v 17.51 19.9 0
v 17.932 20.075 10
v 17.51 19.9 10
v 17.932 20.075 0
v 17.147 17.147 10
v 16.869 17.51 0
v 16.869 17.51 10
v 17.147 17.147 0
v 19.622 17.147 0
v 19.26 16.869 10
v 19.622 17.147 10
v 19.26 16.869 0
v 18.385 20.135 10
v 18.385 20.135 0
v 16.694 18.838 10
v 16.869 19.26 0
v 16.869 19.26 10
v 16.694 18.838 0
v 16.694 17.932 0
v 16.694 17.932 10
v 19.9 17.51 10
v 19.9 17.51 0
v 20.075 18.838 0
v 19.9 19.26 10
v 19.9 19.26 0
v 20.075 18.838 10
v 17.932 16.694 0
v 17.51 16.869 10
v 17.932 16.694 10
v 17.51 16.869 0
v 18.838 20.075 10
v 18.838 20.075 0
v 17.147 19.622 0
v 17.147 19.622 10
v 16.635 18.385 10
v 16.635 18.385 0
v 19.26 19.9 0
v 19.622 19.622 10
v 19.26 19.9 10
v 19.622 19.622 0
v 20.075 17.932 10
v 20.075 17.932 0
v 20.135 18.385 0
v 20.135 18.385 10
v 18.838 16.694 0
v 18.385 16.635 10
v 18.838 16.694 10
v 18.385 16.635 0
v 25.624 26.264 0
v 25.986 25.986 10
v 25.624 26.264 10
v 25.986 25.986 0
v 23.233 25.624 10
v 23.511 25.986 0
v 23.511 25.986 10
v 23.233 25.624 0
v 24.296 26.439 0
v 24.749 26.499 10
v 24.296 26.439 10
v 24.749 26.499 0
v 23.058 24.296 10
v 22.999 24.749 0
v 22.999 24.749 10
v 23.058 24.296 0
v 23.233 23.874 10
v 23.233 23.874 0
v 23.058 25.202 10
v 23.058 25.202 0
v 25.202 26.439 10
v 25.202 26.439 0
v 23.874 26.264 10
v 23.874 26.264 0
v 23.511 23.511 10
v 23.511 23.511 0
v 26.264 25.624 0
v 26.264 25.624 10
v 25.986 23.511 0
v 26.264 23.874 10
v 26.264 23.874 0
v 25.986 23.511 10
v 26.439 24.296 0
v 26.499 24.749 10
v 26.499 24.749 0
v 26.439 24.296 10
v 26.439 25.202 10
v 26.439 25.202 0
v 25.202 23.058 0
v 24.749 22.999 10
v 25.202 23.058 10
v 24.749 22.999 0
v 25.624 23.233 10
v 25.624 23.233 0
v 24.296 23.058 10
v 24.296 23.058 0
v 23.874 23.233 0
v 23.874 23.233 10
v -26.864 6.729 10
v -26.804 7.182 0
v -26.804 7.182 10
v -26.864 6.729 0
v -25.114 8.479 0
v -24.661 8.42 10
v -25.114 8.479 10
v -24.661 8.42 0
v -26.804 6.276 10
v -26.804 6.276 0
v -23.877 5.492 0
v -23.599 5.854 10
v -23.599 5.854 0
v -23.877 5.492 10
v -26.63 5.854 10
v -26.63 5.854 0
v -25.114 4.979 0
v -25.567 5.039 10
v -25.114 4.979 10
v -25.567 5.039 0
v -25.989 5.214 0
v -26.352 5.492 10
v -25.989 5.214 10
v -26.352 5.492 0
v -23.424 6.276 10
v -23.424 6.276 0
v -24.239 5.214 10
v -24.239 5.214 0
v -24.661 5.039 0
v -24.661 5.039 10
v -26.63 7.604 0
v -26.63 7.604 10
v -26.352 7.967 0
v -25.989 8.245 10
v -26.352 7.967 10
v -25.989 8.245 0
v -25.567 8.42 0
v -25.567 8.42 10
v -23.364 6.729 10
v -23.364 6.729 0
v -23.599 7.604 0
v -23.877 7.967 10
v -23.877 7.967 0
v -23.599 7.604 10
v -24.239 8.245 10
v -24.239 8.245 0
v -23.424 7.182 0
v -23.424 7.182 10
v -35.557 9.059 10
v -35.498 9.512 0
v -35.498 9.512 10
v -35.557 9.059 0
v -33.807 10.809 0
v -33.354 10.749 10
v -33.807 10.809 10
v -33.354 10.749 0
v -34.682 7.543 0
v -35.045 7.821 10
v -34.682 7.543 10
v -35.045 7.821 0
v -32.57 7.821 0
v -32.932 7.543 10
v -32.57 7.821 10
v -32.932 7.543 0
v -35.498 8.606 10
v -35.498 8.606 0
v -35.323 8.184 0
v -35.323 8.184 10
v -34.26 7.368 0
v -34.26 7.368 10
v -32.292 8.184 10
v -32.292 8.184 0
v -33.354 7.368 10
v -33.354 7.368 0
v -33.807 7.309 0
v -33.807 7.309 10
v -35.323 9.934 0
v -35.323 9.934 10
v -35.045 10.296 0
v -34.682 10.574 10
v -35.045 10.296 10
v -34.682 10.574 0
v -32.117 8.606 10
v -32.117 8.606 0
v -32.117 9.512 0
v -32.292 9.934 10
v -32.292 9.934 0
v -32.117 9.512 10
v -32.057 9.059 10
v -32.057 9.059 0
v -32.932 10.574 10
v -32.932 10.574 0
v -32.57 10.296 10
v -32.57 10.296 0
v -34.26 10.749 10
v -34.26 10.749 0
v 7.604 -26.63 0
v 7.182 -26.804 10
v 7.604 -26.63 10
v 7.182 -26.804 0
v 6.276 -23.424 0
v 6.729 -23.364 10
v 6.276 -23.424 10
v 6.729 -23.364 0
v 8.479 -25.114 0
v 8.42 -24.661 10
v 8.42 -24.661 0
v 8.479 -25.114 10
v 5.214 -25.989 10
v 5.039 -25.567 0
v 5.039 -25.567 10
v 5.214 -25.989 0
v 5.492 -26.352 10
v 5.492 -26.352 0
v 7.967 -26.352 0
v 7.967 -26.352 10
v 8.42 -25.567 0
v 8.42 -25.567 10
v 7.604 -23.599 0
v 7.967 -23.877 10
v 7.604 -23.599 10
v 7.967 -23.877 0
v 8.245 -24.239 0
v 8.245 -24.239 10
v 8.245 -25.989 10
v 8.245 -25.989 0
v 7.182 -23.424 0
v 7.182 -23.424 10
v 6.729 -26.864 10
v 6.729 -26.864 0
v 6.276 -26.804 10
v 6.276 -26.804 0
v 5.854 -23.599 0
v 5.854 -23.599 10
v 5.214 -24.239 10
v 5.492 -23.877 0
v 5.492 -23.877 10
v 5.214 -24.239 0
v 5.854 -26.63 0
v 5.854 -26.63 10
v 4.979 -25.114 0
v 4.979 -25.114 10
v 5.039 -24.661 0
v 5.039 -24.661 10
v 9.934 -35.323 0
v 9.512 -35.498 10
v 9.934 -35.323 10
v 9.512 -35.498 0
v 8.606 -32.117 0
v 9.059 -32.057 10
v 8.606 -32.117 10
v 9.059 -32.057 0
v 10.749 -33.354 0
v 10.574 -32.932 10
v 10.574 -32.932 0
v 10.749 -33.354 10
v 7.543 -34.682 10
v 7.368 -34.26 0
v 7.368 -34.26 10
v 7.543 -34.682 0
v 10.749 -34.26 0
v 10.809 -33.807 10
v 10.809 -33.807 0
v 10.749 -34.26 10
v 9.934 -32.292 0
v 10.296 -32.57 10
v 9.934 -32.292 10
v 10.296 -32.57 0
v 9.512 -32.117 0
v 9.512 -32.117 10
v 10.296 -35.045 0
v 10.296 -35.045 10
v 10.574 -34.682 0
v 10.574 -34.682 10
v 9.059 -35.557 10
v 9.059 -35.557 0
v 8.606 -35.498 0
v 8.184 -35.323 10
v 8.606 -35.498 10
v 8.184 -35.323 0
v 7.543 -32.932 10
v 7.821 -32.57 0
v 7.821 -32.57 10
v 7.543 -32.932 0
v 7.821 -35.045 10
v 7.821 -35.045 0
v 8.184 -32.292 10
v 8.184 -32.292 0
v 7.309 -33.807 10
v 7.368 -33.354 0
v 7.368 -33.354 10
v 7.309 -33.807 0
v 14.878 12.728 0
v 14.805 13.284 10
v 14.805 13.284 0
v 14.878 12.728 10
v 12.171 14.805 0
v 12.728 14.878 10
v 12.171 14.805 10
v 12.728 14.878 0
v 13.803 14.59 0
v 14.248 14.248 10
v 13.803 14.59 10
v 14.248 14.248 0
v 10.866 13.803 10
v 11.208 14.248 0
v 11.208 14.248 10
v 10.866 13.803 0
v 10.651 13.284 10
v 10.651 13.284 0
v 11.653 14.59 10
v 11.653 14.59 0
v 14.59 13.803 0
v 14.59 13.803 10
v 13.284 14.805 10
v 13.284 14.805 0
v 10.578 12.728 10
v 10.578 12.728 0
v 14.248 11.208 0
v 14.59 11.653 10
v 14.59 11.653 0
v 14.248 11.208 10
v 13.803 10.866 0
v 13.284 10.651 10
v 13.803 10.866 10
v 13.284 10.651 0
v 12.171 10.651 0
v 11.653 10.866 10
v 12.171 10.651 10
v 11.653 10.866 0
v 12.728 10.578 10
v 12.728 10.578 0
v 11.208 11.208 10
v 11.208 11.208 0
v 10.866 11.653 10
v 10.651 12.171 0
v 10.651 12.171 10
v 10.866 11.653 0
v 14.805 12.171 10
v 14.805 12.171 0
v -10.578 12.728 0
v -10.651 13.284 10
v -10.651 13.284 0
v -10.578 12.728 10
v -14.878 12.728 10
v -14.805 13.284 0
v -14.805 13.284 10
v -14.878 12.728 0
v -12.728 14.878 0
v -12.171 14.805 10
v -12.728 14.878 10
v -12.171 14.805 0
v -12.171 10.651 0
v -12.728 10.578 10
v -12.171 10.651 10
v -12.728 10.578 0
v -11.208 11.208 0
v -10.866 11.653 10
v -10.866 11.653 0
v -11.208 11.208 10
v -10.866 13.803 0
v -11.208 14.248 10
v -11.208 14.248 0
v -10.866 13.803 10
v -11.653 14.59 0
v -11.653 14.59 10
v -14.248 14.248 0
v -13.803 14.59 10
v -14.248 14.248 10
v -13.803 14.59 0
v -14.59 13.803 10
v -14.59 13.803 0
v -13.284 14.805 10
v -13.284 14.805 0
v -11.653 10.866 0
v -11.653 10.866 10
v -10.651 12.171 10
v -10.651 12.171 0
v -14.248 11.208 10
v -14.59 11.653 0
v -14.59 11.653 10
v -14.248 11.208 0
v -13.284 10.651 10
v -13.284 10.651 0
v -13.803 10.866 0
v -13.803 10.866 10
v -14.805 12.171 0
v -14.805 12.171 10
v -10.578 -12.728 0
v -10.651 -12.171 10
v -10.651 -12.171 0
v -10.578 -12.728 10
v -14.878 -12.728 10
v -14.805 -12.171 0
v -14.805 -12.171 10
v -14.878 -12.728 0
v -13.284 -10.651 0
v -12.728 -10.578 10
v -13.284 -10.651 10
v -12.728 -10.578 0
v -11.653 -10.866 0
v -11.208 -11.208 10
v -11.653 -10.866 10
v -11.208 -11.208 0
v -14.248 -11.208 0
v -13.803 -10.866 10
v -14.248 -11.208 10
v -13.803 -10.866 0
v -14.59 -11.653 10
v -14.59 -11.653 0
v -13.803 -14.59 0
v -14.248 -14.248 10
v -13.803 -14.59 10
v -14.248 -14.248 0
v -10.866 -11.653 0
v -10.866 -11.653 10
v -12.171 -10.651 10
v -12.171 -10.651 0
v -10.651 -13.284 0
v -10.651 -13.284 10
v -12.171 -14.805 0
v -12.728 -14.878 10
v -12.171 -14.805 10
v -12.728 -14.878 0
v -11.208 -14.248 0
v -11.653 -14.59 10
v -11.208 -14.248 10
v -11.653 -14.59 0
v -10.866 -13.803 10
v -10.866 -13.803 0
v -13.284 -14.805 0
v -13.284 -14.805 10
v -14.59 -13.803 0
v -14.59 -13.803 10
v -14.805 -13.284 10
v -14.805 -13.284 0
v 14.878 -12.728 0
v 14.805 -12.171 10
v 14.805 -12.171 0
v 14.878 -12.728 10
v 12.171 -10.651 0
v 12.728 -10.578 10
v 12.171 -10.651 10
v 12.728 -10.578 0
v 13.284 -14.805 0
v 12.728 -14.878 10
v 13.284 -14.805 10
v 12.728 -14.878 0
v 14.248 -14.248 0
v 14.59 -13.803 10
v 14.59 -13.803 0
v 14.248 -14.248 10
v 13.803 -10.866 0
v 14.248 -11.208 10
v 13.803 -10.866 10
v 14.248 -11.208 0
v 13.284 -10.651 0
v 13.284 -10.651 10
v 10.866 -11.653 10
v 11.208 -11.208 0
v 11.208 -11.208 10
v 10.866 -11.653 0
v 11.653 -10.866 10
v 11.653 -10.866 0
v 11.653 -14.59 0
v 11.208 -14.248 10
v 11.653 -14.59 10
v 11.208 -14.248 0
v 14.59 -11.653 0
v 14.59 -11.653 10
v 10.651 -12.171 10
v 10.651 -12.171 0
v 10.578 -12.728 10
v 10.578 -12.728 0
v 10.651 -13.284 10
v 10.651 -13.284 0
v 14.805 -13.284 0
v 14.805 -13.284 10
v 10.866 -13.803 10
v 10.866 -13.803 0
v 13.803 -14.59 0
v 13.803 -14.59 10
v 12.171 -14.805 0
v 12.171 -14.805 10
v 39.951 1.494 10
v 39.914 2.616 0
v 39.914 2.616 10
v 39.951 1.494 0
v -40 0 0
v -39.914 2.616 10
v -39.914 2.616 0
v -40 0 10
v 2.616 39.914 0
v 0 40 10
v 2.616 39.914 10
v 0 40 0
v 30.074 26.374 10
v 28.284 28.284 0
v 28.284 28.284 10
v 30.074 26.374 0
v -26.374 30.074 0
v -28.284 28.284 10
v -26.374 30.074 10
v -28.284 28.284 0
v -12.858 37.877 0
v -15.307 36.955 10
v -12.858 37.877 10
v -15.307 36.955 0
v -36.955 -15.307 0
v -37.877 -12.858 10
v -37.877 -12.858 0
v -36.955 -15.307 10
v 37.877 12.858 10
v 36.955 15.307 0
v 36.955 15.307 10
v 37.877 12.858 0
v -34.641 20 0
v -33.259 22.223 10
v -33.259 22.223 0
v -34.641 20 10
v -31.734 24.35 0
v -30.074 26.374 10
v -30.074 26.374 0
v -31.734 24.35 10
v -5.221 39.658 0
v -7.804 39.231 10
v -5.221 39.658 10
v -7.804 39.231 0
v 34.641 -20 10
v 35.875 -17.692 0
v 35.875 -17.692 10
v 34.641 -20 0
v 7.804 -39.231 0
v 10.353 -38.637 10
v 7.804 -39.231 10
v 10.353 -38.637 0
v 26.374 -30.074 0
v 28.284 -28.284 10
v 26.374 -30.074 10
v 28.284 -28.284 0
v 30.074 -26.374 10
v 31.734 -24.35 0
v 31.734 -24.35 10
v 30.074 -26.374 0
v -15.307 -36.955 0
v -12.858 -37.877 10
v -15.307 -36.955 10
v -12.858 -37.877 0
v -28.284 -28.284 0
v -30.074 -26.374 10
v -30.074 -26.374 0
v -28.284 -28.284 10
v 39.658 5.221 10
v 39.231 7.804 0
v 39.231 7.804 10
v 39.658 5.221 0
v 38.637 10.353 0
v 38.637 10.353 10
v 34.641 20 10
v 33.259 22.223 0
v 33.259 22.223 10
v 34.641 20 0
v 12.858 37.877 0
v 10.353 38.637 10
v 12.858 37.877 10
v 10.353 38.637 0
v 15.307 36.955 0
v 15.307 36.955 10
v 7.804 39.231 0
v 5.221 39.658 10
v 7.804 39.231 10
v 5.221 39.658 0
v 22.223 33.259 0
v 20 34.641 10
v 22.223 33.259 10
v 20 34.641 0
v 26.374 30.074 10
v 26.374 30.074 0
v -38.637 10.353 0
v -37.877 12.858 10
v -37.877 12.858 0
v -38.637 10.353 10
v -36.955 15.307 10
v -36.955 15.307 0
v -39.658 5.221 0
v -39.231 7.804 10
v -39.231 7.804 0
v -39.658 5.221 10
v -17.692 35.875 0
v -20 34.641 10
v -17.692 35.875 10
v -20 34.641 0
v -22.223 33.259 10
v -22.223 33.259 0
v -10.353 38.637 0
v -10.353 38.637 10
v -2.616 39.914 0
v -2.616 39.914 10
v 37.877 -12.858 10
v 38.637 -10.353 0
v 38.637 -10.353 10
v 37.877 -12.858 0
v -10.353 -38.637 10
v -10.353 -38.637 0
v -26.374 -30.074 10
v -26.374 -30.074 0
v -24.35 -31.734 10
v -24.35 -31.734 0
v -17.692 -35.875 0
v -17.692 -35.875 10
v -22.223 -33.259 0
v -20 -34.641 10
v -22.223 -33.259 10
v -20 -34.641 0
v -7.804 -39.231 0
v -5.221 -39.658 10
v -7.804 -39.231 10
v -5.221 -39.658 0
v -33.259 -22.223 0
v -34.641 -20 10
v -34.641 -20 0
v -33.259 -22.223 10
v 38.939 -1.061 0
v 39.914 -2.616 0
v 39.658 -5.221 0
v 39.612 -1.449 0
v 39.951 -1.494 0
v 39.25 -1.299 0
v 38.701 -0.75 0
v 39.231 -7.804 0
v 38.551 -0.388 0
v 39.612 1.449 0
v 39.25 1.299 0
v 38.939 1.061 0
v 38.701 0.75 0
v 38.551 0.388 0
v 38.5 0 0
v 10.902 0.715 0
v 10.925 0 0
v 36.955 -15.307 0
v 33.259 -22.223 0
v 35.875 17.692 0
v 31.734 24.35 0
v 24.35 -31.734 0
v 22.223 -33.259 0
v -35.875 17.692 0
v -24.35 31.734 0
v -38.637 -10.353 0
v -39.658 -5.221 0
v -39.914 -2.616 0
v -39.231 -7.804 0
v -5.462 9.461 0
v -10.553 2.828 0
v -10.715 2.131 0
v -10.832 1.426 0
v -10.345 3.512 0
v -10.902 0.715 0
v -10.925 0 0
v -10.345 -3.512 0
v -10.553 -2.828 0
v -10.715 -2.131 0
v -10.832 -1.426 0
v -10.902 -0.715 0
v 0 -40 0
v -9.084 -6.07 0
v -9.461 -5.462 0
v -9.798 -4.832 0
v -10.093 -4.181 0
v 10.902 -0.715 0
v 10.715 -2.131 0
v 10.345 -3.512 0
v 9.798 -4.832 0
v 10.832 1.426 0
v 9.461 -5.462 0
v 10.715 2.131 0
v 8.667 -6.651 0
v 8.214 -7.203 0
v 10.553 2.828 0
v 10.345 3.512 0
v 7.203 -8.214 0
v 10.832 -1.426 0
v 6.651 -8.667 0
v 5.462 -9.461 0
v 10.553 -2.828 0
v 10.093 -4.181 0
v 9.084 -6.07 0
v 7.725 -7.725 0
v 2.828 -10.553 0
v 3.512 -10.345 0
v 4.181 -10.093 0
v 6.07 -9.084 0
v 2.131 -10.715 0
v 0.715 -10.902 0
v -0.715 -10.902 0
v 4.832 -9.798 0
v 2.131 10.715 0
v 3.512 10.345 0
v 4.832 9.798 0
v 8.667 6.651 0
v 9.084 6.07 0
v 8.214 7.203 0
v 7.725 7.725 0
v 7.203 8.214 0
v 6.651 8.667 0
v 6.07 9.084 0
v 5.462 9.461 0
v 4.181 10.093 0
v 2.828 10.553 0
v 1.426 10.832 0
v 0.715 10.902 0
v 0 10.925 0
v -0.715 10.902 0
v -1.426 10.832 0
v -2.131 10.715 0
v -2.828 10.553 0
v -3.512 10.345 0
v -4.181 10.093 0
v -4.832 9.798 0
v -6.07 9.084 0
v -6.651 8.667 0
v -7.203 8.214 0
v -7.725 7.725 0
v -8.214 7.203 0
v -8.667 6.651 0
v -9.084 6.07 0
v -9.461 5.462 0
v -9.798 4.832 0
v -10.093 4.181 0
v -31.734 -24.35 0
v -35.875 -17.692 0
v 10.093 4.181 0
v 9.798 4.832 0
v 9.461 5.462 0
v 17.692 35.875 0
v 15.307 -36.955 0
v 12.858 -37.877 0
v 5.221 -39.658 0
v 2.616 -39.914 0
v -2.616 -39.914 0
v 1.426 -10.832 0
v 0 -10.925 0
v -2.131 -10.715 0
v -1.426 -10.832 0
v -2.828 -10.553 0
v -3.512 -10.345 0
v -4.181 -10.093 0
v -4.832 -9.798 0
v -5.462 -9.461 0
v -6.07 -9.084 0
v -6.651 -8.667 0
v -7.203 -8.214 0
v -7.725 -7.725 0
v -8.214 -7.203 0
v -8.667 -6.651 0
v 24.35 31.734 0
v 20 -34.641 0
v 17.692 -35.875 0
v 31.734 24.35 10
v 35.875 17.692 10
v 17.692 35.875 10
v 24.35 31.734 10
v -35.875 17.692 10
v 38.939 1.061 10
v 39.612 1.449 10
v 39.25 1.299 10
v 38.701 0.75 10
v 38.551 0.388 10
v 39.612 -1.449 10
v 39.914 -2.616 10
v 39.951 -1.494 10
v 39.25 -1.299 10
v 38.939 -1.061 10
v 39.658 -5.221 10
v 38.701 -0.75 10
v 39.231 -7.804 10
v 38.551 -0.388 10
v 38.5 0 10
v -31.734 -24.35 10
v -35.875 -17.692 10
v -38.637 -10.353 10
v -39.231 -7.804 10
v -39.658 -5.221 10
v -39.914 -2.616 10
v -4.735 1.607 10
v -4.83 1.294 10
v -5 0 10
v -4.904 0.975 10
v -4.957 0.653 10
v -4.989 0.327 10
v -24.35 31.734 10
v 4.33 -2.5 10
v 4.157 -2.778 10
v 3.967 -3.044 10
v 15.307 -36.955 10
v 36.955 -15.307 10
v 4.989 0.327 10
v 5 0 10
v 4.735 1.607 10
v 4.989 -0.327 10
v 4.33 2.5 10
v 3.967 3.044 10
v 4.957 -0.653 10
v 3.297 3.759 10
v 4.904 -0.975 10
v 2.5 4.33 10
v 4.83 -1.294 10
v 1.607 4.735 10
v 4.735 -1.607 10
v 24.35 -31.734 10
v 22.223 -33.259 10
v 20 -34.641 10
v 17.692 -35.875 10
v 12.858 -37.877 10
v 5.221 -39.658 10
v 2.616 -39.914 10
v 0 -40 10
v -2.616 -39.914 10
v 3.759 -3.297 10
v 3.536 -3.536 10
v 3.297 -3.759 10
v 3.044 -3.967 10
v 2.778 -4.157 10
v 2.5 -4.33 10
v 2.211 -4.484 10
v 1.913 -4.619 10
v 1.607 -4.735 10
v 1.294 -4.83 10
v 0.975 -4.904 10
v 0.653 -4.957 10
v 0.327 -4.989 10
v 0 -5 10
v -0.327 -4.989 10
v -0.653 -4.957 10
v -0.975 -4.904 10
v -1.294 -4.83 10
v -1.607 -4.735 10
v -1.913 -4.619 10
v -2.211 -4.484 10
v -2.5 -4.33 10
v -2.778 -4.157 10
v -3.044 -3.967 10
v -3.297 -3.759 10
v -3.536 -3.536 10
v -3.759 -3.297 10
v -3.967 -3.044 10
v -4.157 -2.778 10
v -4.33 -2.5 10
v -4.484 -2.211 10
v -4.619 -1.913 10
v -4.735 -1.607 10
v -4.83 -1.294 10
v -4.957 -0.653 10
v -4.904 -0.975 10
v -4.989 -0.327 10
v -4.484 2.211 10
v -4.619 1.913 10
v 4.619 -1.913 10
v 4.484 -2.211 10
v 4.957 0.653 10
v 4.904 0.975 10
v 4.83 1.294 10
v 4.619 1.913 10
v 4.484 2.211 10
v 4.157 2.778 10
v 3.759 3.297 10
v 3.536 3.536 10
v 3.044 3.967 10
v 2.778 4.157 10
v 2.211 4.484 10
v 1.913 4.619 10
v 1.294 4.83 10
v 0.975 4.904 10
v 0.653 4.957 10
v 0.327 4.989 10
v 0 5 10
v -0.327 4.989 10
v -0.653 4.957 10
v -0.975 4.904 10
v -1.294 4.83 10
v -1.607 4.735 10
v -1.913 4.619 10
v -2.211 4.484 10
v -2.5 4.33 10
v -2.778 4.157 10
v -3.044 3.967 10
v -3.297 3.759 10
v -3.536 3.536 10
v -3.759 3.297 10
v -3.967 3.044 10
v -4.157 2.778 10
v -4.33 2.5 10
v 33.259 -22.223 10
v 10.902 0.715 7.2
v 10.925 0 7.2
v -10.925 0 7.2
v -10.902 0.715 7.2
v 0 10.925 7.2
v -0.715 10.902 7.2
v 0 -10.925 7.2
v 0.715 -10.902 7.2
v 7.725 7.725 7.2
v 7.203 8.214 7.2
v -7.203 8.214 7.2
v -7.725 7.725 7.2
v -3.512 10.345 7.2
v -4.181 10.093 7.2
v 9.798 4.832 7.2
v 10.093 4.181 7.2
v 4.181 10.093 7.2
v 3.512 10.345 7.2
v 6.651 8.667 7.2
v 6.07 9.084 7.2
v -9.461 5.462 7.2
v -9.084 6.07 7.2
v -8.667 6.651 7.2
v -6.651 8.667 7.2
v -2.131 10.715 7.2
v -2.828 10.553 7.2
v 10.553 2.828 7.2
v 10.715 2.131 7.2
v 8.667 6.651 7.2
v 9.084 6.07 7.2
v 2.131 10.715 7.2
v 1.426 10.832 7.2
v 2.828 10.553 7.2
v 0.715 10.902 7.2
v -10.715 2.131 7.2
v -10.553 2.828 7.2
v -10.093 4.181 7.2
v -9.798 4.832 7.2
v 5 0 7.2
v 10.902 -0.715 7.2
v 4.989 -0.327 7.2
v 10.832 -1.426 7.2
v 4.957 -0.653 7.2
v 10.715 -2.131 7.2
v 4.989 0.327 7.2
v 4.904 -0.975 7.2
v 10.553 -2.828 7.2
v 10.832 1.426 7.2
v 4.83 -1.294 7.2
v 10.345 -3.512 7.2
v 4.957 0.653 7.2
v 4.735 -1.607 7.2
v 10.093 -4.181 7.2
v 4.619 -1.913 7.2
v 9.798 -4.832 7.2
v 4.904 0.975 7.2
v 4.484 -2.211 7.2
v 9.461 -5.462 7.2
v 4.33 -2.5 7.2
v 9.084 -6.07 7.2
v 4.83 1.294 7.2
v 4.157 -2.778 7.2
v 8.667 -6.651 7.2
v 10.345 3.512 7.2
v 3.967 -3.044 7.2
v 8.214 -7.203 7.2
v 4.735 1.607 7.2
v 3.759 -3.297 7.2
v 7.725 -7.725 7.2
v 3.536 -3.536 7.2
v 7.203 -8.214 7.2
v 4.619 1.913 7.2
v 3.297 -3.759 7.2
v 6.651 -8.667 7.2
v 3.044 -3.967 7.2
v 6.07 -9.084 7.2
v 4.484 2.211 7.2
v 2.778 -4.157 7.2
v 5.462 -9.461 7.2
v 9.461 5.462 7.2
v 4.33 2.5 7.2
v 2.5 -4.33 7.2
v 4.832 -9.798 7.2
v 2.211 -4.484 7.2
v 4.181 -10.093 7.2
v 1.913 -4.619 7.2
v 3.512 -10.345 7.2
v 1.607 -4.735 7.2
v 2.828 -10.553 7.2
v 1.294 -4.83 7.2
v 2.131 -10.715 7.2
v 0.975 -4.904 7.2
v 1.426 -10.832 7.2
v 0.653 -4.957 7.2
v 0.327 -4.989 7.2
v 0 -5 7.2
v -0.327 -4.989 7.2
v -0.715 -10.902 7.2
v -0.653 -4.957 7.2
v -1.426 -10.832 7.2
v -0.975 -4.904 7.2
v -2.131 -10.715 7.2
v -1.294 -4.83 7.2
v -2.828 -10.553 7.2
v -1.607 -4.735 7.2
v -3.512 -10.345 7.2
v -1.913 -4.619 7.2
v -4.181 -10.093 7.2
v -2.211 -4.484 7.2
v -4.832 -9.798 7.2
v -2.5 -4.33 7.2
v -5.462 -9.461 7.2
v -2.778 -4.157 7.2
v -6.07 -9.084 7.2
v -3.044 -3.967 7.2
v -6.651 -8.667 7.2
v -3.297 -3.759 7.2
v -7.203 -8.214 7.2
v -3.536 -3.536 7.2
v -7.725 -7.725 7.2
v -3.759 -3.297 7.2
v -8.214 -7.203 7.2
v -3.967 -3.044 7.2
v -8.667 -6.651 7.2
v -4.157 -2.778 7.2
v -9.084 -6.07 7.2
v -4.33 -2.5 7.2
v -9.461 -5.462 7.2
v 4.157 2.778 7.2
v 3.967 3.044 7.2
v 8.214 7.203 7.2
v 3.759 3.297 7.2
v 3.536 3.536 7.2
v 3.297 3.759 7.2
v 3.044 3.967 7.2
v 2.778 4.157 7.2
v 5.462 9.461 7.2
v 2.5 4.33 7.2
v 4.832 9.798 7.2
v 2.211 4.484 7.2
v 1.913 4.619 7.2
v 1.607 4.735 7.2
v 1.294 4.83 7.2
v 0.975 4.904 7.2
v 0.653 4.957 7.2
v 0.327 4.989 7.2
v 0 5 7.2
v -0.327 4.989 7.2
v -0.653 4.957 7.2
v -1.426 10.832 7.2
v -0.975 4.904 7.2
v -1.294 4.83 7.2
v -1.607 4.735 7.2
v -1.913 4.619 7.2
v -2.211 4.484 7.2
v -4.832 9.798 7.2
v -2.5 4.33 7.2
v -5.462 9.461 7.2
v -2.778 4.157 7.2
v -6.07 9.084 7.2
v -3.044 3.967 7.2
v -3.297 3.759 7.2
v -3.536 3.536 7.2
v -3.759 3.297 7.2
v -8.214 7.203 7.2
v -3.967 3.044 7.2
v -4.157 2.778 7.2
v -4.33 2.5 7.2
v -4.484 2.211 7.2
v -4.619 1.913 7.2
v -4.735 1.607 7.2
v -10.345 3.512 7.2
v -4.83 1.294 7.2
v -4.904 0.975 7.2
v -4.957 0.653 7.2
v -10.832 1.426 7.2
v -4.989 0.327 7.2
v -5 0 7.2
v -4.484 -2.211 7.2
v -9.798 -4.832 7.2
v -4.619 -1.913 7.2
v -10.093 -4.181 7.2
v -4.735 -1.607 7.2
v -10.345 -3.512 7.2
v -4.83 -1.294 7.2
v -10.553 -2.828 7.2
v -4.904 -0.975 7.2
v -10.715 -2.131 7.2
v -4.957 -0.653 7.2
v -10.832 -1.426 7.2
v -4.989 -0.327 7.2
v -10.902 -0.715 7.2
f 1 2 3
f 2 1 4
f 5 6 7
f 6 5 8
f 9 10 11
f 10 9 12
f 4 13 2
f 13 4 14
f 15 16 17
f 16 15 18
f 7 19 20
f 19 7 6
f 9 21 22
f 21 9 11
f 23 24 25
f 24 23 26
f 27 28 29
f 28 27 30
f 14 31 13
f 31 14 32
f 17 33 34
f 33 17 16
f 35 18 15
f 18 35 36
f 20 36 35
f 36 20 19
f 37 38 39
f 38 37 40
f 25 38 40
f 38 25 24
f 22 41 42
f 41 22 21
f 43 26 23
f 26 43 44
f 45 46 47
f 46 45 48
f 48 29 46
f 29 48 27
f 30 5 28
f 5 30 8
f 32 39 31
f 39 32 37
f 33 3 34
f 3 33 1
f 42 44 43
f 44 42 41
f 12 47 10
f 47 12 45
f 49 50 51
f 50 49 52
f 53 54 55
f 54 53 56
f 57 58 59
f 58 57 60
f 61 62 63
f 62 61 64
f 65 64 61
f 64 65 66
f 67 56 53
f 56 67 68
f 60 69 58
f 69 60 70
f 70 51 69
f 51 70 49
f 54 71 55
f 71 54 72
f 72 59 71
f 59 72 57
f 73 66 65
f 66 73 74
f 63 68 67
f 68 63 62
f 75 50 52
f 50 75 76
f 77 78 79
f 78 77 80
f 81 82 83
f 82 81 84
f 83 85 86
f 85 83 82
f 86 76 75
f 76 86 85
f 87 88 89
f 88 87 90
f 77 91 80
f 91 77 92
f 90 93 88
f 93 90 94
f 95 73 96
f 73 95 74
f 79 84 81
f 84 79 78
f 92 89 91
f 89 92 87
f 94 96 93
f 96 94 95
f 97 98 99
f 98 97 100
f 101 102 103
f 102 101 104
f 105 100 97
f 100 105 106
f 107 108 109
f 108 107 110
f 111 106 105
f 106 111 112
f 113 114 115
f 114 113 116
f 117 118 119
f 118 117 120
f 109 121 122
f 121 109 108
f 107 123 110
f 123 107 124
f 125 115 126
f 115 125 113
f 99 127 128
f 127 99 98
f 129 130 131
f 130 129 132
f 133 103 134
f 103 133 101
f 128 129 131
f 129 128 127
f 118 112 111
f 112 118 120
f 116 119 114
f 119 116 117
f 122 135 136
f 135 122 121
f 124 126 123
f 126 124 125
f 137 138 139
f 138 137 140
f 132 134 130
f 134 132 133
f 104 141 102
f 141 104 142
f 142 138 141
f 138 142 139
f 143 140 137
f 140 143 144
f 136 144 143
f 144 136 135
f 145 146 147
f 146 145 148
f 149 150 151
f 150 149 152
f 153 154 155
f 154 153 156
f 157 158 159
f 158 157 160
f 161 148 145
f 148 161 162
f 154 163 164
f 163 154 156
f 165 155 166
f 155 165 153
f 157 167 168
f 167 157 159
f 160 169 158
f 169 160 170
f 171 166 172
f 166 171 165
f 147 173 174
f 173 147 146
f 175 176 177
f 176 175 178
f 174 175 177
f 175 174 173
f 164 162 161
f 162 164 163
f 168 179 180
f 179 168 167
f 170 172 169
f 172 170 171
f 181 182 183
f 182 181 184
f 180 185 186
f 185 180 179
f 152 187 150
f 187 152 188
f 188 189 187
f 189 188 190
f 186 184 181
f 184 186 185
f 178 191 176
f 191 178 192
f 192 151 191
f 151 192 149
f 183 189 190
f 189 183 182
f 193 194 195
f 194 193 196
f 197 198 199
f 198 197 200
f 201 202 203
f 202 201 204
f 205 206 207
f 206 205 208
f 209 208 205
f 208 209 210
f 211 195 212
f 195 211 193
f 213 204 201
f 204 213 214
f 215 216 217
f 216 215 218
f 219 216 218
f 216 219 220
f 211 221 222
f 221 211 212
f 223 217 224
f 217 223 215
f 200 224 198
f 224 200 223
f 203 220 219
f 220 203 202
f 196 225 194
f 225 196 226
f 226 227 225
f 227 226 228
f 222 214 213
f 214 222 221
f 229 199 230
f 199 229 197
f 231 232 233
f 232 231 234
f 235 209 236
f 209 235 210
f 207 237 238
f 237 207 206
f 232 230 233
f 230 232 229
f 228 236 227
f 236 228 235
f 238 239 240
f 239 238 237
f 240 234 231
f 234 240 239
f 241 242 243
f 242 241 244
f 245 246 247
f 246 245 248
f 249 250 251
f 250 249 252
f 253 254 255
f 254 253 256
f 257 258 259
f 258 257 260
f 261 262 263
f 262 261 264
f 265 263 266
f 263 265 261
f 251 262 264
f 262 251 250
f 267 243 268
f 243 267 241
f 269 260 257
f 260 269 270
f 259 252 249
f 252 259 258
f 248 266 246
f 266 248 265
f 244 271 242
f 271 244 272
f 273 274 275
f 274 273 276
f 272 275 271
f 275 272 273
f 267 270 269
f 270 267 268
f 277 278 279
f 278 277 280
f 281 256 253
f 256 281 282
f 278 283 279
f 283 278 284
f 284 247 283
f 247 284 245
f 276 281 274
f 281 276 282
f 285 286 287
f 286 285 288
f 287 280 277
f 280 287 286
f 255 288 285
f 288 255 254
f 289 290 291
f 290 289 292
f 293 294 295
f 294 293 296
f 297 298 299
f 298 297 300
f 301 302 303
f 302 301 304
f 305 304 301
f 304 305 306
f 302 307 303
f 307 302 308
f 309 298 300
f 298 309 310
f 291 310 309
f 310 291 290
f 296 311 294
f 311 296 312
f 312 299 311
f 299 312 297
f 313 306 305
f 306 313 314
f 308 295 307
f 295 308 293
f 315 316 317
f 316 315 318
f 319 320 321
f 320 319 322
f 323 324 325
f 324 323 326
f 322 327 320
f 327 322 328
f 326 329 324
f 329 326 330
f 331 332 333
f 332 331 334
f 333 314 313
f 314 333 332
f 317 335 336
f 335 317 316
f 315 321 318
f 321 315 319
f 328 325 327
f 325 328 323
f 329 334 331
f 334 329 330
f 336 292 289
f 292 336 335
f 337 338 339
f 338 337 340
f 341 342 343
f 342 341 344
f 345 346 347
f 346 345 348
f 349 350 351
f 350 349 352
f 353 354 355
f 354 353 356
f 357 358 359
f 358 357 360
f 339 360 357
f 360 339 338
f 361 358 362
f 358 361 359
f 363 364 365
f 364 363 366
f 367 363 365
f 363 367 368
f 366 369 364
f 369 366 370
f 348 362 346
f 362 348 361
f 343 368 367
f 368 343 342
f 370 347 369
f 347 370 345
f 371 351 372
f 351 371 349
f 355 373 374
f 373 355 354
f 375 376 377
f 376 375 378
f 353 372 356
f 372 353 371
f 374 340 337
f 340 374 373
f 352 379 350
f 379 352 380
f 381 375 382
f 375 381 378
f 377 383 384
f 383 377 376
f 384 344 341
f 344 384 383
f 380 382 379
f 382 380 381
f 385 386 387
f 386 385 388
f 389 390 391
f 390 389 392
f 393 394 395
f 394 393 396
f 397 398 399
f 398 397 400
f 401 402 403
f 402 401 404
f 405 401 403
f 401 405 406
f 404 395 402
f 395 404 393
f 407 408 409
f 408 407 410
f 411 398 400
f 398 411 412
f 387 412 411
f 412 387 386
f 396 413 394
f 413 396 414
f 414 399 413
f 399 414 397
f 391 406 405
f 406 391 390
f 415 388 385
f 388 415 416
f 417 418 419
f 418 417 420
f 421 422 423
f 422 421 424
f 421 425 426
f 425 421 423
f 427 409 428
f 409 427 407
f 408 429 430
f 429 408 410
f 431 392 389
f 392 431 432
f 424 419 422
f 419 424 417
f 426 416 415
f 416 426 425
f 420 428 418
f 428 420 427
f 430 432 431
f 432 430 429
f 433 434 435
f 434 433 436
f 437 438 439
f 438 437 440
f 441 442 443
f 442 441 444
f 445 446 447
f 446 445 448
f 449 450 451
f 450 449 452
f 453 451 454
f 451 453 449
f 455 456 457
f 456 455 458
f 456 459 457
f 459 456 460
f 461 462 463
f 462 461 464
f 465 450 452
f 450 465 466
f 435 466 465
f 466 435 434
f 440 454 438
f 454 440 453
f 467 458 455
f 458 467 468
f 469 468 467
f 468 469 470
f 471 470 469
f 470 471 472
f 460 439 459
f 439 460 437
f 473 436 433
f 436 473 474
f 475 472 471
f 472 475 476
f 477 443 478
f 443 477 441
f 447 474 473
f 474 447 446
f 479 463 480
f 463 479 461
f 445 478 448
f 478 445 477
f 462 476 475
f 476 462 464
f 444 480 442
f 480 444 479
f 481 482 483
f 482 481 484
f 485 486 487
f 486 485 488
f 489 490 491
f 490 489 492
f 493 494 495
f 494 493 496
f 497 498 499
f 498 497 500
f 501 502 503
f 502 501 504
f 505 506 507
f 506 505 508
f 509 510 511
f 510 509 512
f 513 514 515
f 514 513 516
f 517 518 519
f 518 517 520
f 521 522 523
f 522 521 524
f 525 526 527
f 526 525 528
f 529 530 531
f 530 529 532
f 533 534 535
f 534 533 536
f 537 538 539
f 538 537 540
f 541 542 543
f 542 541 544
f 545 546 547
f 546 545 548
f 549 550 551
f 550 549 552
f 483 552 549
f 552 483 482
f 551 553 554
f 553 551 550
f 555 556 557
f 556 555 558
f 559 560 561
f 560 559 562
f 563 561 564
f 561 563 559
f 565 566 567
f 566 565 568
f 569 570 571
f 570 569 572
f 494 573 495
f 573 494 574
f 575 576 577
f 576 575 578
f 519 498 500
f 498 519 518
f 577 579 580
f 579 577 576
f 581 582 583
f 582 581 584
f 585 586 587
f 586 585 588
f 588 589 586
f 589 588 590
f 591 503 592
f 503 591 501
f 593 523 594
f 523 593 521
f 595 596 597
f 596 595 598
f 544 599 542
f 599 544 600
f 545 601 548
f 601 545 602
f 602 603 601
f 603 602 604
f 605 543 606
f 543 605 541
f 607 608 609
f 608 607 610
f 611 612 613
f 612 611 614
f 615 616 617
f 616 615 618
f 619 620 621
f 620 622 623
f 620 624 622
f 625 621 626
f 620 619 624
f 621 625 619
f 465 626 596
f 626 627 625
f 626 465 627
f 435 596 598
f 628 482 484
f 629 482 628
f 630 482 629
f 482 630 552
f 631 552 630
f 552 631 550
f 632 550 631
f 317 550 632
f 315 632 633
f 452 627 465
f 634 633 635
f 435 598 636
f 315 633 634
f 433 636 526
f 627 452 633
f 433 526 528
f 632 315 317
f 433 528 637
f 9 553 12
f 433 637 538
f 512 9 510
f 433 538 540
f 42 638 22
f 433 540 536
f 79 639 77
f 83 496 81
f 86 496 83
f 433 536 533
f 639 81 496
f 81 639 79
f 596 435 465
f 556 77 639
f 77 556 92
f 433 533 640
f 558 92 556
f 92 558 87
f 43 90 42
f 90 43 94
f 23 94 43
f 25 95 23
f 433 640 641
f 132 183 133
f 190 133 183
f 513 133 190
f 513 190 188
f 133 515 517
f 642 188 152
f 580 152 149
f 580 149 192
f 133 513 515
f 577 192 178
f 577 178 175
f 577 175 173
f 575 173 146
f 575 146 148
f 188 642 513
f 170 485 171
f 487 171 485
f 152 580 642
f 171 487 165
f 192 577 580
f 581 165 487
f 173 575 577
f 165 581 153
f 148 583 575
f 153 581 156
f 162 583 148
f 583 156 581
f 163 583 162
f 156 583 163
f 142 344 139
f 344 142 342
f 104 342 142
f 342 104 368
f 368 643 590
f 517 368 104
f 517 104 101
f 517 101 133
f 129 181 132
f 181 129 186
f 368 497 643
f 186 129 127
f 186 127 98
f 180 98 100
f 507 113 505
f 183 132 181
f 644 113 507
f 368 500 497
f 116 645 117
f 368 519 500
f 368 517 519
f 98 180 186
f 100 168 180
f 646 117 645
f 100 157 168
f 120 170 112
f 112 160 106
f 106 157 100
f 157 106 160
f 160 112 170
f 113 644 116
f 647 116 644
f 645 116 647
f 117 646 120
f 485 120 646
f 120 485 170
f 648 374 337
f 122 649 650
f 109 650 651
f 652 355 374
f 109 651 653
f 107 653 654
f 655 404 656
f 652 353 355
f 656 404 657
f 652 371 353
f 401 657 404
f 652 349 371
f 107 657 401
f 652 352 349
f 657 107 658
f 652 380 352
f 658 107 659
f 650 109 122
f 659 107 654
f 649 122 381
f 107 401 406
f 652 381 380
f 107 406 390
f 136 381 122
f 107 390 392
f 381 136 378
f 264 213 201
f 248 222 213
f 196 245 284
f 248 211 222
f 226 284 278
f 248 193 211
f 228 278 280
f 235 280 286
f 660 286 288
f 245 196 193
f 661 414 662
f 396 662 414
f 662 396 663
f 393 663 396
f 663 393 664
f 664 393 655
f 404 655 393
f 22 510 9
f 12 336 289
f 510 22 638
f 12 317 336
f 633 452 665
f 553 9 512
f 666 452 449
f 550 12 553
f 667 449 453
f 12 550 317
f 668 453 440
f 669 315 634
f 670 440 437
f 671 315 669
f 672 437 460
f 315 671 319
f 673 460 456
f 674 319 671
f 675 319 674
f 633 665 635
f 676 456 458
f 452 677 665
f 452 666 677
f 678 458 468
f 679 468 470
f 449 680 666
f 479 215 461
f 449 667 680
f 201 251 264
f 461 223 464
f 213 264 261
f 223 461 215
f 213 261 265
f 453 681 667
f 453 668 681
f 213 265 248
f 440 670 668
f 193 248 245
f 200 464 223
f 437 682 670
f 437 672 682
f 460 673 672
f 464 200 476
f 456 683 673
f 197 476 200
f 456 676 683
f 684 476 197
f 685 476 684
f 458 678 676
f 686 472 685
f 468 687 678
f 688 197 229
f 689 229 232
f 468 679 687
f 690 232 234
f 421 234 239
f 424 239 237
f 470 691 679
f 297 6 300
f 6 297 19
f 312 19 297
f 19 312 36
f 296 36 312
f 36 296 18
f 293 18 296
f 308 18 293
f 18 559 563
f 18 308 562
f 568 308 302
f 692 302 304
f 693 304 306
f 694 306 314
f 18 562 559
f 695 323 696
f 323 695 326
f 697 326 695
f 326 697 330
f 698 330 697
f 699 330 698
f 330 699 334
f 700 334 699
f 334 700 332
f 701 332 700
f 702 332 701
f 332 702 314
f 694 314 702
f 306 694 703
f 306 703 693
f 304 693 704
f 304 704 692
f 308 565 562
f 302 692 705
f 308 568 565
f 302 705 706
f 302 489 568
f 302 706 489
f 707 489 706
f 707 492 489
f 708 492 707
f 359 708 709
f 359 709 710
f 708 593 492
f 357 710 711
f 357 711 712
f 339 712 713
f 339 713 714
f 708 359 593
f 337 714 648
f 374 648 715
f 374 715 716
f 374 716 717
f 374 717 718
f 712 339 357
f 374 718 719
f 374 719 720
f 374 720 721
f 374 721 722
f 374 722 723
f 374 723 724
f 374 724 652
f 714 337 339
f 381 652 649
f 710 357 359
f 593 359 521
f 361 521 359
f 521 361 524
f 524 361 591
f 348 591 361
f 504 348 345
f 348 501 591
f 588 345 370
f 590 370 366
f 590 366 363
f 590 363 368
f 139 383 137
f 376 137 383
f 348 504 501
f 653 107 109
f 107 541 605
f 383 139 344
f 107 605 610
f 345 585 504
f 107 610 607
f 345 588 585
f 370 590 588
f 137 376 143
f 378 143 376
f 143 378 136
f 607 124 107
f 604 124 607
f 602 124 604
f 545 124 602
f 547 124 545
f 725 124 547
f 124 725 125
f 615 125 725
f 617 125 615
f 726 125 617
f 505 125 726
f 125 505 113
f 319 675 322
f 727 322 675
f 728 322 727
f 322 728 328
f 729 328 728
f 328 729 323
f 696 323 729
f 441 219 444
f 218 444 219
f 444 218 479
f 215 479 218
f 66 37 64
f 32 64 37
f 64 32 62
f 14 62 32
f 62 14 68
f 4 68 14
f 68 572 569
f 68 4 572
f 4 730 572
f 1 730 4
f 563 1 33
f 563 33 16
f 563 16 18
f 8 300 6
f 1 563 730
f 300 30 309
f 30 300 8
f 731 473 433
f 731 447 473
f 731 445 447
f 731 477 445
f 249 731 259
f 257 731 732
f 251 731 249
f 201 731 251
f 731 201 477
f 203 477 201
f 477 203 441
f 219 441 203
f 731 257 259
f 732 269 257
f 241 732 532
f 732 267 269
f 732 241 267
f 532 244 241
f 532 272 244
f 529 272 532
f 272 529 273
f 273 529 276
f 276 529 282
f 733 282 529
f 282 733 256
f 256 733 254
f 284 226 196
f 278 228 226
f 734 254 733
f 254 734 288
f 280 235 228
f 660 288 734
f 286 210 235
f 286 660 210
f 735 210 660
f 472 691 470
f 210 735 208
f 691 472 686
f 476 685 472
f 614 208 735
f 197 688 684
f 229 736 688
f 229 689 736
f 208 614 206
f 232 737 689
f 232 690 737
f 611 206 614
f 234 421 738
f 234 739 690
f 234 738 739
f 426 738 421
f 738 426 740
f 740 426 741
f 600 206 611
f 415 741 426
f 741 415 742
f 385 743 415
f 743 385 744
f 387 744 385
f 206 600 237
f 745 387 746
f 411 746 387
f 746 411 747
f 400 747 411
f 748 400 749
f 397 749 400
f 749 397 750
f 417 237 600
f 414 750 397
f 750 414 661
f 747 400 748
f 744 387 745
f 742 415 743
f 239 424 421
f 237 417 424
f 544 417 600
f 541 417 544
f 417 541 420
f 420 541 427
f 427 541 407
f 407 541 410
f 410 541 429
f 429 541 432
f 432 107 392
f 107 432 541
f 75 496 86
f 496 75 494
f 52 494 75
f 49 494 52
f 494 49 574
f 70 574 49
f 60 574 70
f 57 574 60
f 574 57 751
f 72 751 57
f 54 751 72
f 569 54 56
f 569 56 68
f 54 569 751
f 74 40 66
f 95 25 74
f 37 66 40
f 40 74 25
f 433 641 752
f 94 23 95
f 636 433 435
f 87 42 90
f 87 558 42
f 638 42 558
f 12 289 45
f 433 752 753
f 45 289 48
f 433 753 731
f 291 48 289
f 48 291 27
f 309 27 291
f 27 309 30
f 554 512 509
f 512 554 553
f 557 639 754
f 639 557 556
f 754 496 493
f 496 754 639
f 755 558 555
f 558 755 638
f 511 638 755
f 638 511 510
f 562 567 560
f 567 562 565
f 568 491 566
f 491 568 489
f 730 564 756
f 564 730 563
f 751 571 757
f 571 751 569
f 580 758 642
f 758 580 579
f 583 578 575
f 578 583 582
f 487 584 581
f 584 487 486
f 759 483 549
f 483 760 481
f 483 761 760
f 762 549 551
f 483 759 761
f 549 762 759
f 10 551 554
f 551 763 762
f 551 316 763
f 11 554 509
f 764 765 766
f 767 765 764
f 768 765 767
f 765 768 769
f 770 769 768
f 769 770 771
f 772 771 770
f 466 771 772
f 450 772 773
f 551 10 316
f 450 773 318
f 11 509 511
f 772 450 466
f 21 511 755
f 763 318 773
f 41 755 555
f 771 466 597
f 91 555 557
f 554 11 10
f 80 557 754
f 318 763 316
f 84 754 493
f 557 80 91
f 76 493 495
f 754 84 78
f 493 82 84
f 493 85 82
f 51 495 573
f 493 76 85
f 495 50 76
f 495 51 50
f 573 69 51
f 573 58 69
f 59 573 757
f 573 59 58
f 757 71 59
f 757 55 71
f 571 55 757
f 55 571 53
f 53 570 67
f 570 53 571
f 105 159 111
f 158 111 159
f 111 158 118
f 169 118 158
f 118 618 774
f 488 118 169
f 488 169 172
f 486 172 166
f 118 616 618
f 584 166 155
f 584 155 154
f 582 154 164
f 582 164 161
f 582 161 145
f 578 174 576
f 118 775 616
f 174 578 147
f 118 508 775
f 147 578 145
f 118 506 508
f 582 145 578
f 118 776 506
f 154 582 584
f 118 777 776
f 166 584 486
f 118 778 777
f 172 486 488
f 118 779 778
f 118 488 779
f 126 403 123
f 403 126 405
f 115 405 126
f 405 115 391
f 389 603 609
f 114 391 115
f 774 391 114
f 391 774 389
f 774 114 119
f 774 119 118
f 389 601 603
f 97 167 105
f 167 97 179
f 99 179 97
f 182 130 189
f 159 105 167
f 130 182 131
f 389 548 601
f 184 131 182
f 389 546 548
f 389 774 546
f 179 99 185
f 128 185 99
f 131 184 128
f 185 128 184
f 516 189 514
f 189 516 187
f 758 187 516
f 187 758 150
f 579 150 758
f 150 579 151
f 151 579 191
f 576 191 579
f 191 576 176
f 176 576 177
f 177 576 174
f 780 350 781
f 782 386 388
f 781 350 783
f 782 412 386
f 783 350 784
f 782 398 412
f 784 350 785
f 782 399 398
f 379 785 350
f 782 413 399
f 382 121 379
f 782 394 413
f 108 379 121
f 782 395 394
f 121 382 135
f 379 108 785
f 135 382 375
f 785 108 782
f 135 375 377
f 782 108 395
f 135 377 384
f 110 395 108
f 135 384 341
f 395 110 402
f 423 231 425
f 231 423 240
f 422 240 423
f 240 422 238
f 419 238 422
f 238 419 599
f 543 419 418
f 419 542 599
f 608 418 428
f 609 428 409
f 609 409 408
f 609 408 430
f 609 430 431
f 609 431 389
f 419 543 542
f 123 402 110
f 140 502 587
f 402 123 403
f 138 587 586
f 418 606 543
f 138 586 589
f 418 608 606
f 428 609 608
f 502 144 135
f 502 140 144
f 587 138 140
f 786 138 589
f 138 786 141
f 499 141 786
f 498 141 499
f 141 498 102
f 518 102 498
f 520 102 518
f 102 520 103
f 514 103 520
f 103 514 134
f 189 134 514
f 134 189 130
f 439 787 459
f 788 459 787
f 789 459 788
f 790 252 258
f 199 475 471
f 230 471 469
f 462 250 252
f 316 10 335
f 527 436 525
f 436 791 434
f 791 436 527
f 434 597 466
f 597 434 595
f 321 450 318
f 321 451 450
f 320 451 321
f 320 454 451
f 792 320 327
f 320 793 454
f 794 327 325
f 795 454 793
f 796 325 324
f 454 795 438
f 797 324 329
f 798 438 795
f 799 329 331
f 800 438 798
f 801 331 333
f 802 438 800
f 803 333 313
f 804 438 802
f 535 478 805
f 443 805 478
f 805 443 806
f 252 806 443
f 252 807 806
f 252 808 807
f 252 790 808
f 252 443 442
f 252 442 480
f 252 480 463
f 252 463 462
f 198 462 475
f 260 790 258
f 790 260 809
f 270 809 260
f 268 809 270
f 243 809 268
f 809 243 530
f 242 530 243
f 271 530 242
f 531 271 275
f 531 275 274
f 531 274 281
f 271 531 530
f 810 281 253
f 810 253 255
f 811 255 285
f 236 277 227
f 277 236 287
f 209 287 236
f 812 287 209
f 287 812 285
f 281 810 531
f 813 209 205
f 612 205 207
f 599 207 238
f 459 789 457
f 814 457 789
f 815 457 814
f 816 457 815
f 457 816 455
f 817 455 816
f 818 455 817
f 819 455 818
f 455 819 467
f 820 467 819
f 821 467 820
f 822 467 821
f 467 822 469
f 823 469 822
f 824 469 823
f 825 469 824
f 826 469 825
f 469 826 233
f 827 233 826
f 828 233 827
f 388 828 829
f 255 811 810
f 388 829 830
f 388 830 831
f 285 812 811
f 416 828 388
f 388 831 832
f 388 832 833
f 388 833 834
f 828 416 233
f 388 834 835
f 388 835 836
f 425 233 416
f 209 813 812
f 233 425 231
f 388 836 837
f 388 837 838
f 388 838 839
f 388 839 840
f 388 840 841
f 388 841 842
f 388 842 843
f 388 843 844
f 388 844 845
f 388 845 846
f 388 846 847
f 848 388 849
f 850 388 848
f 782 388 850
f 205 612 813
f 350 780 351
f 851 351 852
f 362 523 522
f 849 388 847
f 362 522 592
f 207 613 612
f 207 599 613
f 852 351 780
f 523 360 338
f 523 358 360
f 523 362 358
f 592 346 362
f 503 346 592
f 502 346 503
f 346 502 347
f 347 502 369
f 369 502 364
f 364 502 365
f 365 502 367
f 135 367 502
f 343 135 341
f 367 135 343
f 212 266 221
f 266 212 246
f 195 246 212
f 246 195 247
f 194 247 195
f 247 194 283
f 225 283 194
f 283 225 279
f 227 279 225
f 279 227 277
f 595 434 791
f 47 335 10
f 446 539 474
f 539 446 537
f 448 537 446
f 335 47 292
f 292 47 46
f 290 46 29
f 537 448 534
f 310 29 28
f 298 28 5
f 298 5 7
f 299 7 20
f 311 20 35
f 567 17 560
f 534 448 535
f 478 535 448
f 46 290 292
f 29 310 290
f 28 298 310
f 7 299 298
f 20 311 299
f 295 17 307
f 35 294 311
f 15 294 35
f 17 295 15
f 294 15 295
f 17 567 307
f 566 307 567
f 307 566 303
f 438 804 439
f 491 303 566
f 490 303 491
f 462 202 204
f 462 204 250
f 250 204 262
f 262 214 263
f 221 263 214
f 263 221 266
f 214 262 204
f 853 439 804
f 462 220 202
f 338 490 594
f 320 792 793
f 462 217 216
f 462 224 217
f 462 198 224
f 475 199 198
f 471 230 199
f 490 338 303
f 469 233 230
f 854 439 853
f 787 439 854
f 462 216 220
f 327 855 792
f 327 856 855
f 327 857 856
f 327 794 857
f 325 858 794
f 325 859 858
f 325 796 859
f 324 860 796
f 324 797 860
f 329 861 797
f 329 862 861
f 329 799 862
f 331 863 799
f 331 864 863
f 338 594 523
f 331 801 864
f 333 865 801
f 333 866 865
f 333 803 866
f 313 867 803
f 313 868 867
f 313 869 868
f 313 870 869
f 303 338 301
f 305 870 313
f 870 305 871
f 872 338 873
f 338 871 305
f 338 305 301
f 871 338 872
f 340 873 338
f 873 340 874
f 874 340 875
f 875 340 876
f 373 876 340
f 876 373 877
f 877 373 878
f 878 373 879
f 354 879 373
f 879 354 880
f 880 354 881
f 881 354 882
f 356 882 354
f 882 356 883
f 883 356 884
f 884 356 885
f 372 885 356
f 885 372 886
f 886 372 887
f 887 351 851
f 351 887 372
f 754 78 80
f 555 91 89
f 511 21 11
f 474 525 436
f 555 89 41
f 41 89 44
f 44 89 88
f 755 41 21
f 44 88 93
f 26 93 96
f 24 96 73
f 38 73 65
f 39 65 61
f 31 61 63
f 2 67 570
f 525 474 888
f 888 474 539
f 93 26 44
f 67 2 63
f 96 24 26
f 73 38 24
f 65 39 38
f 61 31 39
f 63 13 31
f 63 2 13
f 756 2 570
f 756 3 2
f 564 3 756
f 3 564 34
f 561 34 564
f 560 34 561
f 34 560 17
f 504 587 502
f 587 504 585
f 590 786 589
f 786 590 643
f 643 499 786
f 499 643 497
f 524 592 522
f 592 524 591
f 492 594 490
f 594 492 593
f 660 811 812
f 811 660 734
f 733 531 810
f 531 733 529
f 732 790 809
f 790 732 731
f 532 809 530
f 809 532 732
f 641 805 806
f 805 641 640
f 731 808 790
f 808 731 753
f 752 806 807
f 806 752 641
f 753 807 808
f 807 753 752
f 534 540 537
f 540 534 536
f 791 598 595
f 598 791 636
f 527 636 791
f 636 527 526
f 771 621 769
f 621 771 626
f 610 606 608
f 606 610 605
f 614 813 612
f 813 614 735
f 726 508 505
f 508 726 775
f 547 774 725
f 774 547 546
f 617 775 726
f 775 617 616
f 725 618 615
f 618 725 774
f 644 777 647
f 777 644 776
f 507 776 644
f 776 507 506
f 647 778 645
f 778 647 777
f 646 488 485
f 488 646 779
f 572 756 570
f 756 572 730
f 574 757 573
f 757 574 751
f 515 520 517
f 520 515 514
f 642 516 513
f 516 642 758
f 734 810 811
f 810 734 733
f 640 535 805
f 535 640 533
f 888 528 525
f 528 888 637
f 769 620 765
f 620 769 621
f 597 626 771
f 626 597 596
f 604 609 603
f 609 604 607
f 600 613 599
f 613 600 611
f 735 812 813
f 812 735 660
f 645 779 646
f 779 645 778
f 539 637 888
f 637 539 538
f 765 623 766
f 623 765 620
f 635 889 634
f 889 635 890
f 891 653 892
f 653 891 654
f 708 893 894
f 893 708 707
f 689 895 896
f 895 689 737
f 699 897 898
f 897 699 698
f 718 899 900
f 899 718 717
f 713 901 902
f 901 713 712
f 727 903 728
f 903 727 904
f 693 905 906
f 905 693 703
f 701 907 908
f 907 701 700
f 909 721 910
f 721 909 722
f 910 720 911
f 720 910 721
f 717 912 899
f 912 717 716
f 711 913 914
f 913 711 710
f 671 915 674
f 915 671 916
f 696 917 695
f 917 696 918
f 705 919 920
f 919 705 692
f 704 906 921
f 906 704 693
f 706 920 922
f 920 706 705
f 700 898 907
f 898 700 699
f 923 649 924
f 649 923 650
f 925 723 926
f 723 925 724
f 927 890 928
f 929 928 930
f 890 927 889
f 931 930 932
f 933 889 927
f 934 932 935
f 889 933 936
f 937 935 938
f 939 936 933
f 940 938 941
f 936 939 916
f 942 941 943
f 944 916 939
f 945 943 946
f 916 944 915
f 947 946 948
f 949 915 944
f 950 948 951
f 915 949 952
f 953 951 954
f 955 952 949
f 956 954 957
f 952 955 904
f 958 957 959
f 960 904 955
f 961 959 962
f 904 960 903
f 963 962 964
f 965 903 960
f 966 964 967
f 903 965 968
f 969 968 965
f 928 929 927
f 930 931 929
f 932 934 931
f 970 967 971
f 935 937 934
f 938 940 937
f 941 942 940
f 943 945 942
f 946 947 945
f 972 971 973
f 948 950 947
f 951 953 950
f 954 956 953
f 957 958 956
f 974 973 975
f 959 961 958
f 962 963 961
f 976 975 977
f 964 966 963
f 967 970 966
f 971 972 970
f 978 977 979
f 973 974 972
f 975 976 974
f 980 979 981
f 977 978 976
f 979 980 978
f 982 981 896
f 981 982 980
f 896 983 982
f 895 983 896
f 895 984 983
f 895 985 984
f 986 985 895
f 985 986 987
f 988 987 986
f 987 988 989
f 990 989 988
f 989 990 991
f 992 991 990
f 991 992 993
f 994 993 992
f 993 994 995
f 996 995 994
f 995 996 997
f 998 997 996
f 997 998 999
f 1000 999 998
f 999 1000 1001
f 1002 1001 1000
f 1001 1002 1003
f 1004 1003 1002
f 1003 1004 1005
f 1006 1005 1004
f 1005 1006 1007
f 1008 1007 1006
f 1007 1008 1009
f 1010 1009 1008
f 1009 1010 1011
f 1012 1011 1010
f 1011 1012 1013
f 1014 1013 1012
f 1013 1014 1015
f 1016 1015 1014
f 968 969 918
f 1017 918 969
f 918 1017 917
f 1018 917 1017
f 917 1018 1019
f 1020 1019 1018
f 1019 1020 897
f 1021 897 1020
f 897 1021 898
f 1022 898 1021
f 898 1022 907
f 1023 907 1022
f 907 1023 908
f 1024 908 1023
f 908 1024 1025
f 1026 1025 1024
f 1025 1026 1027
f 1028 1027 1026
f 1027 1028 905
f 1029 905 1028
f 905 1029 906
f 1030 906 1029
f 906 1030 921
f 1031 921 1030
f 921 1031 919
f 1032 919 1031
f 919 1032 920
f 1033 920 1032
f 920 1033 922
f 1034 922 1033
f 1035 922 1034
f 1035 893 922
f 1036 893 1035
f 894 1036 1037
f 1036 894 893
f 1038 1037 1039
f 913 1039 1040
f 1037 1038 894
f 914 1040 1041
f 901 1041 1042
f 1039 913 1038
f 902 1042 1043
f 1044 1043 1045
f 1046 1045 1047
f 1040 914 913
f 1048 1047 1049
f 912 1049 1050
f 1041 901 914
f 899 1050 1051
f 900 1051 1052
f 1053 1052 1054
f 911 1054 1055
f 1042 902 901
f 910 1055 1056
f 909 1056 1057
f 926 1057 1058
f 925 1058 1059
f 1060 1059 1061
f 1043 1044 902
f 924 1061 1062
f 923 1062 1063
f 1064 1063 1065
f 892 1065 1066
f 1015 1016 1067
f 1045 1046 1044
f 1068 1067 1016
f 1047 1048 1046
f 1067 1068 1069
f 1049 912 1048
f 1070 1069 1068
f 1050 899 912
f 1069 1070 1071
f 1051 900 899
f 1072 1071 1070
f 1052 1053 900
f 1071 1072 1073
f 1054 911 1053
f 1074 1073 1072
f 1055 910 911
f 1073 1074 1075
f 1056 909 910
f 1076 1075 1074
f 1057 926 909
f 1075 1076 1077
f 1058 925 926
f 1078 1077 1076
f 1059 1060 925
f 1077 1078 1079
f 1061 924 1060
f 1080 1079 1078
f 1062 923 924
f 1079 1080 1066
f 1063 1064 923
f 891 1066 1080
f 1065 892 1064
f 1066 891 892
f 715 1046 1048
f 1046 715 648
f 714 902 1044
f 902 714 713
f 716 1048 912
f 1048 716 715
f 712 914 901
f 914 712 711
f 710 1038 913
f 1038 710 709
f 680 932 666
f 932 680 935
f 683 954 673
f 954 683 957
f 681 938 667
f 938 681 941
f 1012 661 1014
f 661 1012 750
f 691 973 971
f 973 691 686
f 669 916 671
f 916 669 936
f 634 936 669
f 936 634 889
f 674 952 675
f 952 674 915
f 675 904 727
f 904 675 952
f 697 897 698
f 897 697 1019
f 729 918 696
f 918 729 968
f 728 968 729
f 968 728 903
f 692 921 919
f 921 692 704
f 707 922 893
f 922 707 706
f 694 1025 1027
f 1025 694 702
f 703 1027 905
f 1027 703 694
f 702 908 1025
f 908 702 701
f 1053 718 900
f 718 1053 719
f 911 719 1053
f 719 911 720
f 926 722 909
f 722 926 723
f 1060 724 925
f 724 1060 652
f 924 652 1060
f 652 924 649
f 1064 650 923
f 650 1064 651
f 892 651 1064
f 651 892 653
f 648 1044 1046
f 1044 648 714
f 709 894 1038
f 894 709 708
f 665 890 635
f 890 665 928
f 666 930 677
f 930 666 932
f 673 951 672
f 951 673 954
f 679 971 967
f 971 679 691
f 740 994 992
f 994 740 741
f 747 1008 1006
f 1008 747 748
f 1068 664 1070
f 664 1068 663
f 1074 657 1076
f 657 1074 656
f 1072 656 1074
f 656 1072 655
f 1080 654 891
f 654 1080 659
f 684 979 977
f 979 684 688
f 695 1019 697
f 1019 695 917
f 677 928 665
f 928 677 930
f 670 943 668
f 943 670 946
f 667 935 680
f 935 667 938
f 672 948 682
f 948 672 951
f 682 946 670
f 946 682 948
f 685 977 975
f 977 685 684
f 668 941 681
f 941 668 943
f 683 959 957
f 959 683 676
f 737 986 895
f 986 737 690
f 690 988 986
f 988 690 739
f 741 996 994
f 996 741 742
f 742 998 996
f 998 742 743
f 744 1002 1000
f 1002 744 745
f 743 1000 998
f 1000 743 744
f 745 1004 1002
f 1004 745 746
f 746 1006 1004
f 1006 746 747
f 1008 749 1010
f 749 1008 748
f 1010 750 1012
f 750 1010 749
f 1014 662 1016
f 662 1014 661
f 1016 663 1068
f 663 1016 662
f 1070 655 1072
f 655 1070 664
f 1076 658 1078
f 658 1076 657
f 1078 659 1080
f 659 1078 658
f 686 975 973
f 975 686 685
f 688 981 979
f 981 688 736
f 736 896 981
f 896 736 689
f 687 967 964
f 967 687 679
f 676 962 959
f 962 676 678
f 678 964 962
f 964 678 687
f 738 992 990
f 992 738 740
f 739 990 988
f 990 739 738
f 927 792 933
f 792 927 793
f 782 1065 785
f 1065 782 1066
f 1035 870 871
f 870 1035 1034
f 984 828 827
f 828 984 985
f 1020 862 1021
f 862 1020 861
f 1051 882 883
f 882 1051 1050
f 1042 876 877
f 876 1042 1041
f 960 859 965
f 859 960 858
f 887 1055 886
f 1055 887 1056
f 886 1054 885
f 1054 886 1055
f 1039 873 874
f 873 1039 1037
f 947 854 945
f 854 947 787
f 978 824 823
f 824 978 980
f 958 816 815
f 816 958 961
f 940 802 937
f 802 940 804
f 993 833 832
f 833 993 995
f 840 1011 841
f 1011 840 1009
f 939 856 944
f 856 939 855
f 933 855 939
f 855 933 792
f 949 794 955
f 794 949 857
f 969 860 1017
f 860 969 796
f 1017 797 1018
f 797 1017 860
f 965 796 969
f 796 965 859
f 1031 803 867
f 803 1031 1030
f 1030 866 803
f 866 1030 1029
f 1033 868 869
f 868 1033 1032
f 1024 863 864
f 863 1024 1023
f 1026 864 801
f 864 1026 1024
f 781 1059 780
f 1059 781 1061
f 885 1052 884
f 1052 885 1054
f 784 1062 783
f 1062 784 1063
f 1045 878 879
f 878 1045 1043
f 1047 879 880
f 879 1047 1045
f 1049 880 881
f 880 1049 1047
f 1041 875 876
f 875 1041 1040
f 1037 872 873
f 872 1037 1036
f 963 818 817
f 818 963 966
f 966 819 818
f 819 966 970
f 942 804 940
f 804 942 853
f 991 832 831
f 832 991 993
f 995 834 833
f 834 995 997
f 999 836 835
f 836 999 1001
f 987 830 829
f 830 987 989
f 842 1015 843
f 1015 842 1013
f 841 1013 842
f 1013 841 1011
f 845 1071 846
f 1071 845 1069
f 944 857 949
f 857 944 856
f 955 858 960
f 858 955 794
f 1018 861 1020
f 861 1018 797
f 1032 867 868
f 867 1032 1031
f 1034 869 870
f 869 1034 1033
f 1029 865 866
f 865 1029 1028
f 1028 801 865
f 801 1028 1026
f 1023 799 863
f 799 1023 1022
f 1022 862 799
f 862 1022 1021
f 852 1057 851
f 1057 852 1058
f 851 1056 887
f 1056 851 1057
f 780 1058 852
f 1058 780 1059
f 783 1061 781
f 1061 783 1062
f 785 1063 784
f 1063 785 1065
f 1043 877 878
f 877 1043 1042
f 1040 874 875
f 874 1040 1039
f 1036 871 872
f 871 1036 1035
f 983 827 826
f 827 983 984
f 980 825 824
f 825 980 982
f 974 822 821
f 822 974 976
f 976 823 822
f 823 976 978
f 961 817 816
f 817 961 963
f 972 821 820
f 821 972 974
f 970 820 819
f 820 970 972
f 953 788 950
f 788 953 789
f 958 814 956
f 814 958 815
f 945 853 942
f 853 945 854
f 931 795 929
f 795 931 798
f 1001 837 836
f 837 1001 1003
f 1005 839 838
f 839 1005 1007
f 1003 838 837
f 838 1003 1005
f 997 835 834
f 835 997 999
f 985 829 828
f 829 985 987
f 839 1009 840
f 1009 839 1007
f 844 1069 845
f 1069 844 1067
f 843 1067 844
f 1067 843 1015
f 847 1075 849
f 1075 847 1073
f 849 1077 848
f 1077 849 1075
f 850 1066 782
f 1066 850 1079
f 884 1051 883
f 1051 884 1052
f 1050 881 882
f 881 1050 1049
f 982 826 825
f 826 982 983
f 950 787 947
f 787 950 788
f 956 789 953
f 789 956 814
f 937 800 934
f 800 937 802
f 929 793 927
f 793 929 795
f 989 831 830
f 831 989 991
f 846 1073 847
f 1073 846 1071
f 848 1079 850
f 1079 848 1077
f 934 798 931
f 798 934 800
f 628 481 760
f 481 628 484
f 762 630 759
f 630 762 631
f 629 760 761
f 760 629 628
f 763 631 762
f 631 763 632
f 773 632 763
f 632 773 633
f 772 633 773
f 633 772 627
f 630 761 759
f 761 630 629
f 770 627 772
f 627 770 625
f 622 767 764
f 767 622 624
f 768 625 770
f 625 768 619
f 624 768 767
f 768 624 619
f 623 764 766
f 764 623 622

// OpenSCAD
// Gen-DZ — TOP SPIDER HUB (2026-11-02 pedestal frame). Print x1. As modelled (= assembled) the bearing seat opens DOWNWARD toward
// rotor B; the print packs FLIP it (seat opening UP) so the seat needs no bridge. The upper 608 is pressed in from below,
// against the 2.8 mm floor. 3 spider arms bolt on top (2x M3x16 + nyloc each). Carries only lateral loads (the weight goes into the pedestal).
include <parameters.scad>;
$fn = 96;
difference() {
    cylinder(d=spider_hub_od, h=spider_hub_t);
    translate([0, 0, -0.1]) cylinder(d=bearing_d, h=bearing_h + 0.1);
    translate([0, 0, -0.1]) cylinder(d=endbell_shaft_clear, h=spider_hub_t + 1);
    for (a = arm_angles) for (r = arm_bolt_r) rotate([0, 0, a]) translate([r, 0, -0.1]) cylinder(d=m3_clear, h=spider_hub_t + 1, $fn=24);
    for (a = brace_angles) translate([brace_r * cos(a), brace_r * sin(a), -0.1]) cylinder(d=brace_d, h=spider_hub_t + 1, $fn=24);
    translate([spider_hub_od / 2, 0, -0.1]) cylinder(d=index_notch_d, h=spider_hub_t + 1, $fn=24);
}
